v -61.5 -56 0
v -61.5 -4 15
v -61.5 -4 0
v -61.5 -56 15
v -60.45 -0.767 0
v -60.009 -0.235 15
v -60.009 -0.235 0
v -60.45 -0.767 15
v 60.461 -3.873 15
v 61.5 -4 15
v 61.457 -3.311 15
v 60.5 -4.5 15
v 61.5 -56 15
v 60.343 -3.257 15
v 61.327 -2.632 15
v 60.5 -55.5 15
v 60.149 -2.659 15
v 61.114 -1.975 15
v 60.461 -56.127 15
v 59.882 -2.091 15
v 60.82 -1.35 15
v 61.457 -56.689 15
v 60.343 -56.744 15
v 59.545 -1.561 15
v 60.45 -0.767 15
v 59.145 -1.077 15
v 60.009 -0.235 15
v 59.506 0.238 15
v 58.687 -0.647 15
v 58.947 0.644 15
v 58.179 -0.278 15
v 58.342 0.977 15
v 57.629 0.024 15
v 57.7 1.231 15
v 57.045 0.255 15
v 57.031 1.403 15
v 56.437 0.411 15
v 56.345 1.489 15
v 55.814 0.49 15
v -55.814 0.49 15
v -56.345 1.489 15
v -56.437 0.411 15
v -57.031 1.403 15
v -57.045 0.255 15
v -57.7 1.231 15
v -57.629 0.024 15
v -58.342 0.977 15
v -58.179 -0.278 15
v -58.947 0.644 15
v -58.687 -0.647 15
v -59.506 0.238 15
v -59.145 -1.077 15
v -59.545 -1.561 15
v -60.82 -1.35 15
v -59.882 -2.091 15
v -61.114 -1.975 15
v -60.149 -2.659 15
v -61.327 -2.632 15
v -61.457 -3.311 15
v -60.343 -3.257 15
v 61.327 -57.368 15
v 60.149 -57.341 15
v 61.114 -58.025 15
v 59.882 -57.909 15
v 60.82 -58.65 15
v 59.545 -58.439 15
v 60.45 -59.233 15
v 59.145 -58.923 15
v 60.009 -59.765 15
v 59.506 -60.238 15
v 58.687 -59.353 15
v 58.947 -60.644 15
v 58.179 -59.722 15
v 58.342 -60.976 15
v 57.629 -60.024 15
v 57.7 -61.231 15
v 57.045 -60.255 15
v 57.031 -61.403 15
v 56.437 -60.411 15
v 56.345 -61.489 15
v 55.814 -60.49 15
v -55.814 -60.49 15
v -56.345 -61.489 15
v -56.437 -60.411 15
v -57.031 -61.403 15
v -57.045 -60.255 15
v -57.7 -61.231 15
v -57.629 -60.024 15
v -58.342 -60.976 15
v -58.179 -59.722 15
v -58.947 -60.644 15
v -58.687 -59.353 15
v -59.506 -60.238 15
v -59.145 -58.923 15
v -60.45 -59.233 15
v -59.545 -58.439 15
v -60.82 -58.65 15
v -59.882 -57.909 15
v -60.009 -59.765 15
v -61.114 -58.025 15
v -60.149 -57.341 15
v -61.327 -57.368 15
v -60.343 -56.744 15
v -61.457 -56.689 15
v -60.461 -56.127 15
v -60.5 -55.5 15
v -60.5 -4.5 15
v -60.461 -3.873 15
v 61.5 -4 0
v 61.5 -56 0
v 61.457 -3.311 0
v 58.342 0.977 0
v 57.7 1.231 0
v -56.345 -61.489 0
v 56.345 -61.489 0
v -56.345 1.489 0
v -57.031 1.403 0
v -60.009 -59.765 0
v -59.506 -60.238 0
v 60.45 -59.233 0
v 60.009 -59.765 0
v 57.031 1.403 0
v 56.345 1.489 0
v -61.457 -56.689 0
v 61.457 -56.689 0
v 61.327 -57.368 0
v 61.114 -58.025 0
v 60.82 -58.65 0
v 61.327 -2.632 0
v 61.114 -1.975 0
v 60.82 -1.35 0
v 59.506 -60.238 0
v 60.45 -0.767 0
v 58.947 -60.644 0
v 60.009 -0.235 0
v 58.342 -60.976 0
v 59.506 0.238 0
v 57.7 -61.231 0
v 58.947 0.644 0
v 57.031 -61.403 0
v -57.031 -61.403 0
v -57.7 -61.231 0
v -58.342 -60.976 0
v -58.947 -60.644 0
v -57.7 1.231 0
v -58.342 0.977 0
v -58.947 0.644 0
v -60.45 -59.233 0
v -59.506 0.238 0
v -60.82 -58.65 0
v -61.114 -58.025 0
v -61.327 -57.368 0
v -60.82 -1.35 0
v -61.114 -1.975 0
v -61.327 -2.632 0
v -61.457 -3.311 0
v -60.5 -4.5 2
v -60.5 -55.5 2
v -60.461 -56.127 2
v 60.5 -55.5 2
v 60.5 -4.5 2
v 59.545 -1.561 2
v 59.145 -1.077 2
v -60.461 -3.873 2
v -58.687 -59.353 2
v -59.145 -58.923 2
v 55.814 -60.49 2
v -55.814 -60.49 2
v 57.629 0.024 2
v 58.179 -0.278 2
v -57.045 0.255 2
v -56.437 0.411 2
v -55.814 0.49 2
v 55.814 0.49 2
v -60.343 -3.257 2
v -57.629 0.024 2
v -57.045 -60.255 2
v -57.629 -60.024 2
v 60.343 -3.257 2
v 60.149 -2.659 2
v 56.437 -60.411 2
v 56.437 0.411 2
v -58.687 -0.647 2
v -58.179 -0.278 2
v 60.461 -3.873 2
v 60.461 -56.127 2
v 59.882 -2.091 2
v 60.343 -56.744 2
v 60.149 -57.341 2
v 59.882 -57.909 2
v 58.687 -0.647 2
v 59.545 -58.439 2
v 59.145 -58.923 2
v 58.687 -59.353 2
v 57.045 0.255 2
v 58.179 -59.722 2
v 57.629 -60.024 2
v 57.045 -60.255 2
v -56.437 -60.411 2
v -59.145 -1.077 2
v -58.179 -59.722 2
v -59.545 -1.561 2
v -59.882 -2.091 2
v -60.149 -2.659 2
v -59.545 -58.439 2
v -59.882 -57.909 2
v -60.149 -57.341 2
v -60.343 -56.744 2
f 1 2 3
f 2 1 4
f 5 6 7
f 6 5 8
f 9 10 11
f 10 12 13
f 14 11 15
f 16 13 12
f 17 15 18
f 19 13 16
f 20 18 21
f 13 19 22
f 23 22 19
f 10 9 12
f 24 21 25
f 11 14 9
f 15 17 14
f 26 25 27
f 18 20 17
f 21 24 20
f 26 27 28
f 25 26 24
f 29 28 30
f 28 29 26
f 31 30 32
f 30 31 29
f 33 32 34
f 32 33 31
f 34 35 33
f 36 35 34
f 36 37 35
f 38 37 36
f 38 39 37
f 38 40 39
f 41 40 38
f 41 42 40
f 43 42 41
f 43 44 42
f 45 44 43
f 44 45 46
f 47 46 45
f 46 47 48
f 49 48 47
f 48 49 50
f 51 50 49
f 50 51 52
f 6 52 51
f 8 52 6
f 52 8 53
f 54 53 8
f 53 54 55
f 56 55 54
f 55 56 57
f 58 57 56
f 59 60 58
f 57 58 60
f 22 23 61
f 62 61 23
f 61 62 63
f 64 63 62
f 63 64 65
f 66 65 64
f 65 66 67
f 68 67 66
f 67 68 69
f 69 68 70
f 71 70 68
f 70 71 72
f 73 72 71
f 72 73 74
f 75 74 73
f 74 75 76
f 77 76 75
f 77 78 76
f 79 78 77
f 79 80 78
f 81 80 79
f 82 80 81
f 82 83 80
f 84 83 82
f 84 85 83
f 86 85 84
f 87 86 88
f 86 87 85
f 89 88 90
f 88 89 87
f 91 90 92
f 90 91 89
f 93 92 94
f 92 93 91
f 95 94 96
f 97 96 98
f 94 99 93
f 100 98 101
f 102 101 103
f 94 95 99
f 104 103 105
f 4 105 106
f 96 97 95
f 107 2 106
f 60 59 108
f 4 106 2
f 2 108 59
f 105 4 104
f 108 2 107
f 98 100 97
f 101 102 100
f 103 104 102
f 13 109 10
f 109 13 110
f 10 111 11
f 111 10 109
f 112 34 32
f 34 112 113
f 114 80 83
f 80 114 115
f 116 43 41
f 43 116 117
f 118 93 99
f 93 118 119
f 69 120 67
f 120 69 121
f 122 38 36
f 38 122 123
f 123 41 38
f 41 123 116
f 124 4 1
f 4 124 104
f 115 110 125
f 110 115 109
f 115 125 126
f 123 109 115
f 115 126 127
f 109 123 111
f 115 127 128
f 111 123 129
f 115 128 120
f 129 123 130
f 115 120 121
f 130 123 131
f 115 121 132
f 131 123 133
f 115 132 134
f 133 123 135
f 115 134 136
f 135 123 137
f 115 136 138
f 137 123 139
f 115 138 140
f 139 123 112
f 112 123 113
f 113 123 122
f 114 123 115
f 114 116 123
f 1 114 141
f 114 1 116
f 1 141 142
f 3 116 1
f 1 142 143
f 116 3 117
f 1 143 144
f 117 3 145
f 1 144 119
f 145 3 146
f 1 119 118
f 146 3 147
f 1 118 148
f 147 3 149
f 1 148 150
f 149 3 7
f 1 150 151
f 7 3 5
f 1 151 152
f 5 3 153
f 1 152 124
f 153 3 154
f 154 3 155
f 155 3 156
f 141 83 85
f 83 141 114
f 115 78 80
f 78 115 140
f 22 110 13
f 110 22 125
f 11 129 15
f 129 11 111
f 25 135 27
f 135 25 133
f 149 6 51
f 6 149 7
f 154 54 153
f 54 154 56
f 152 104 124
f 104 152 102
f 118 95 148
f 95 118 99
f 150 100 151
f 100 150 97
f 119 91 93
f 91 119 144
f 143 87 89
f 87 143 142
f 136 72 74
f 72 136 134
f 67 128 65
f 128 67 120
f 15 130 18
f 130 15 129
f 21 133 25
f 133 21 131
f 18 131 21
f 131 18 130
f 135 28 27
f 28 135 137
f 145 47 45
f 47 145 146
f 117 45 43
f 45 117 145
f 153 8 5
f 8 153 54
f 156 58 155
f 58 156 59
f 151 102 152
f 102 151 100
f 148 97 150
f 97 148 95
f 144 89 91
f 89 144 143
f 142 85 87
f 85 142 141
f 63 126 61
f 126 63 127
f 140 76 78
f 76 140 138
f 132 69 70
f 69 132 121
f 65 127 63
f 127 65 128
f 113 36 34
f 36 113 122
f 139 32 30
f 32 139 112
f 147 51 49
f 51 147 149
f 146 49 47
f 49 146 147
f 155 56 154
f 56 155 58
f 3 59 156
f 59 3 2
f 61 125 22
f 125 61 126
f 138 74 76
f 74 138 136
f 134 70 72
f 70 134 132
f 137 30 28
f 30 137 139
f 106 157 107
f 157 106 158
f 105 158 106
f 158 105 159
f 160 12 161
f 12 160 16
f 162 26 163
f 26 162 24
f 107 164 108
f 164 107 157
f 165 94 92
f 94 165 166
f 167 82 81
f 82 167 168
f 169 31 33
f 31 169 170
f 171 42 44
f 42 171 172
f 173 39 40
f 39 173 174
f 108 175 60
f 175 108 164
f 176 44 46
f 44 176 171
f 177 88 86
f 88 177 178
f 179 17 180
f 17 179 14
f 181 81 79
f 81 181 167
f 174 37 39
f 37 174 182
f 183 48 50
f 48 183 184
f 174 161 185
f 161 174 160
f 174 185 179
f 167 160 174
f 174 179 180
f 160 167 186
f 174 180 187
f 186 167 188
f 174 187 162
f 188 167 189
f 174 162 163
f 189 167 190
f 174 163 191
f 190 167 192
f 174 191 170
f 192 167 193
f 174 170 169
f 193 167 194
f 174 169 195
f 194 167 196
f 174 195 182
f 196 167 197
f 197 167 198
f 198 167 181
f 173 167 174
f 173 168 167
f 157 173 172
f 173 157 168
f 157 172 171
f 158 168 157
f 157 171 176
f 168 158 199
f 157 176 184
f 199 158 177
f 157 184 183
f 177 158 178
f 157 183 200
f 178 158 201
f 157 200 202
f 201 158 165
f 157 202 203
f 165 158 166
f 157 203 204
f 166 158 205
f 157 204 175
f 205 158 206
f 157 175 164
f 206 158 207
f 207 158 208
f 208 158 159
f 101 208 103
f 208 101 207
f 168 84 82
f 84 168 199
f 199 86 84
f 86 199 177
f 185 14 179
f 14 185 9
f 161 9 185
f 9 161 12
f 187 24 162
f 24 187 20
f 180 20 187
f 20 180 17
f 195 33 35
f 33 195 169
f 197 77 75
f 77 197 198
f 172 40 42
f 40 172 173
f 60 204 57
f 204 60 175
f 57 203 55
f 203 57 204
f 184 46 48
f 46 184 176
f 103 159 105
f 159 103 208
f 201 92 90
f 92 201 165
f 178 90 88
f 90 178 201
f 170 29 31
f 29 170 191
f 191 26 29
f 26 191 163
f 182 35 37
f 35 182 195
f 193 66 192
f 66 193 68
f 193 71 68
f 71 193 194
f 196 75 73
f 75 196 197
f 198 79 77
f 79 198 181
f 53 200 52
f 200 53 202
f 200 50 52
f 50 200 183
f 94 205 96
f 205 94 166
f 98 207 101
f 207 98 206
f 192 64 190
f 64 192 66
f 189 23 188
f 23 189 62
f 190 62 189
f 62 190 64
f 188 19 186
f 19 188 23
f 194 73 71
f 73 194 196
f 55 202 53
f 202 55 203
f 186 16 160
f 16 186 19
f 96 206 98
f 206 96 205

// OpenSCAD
$fn = 50;


difference() {
	union() {
		translate(v = [0, -30.0000000000, 0]) {
			hull() {
				translate(v = [-56.0000000000, 26.0000000000, 0]) {
					cylinder(h = 15, r = 5.5000000000);
				}
				translate(v = [56.0000000000, 26.0000000000, 0]) {
					cylinder(h = 15, r = 5.5000000000);
				}
				translate(v = [-56.0000000000, -26.0000000000, 0]) {
					cylinder(h = 15, r = 5.5000000000);
				}
				translate(v = [56.0000000000, -26.0000000000, 0]) {
					cylinder(h = 15, r = 5.5000000000);
				}
			}
		}
	}
	union() {
		translate(v = [0, -30.0000000000, 2]) {
			hull() {
				translate(v = [-55.5000000000, 25.5000000000, 0]) {
					cylinder(h = 30, r = 5);
				}
				translate(v = [55.5000000000, 25.5000000000, 0]) {
					cylinder(h = 30, r = 5);
				}
				translate(v = [-55.5000000000, -25.5000000000, 0]) {
					cylinder(h = 30, r = 5);
				}
				translate(v = [55.5000000000, -25.5000000000, 0]) {
					cylinder(h = 30, r = 5);
				}
			}
		}
	}
}
